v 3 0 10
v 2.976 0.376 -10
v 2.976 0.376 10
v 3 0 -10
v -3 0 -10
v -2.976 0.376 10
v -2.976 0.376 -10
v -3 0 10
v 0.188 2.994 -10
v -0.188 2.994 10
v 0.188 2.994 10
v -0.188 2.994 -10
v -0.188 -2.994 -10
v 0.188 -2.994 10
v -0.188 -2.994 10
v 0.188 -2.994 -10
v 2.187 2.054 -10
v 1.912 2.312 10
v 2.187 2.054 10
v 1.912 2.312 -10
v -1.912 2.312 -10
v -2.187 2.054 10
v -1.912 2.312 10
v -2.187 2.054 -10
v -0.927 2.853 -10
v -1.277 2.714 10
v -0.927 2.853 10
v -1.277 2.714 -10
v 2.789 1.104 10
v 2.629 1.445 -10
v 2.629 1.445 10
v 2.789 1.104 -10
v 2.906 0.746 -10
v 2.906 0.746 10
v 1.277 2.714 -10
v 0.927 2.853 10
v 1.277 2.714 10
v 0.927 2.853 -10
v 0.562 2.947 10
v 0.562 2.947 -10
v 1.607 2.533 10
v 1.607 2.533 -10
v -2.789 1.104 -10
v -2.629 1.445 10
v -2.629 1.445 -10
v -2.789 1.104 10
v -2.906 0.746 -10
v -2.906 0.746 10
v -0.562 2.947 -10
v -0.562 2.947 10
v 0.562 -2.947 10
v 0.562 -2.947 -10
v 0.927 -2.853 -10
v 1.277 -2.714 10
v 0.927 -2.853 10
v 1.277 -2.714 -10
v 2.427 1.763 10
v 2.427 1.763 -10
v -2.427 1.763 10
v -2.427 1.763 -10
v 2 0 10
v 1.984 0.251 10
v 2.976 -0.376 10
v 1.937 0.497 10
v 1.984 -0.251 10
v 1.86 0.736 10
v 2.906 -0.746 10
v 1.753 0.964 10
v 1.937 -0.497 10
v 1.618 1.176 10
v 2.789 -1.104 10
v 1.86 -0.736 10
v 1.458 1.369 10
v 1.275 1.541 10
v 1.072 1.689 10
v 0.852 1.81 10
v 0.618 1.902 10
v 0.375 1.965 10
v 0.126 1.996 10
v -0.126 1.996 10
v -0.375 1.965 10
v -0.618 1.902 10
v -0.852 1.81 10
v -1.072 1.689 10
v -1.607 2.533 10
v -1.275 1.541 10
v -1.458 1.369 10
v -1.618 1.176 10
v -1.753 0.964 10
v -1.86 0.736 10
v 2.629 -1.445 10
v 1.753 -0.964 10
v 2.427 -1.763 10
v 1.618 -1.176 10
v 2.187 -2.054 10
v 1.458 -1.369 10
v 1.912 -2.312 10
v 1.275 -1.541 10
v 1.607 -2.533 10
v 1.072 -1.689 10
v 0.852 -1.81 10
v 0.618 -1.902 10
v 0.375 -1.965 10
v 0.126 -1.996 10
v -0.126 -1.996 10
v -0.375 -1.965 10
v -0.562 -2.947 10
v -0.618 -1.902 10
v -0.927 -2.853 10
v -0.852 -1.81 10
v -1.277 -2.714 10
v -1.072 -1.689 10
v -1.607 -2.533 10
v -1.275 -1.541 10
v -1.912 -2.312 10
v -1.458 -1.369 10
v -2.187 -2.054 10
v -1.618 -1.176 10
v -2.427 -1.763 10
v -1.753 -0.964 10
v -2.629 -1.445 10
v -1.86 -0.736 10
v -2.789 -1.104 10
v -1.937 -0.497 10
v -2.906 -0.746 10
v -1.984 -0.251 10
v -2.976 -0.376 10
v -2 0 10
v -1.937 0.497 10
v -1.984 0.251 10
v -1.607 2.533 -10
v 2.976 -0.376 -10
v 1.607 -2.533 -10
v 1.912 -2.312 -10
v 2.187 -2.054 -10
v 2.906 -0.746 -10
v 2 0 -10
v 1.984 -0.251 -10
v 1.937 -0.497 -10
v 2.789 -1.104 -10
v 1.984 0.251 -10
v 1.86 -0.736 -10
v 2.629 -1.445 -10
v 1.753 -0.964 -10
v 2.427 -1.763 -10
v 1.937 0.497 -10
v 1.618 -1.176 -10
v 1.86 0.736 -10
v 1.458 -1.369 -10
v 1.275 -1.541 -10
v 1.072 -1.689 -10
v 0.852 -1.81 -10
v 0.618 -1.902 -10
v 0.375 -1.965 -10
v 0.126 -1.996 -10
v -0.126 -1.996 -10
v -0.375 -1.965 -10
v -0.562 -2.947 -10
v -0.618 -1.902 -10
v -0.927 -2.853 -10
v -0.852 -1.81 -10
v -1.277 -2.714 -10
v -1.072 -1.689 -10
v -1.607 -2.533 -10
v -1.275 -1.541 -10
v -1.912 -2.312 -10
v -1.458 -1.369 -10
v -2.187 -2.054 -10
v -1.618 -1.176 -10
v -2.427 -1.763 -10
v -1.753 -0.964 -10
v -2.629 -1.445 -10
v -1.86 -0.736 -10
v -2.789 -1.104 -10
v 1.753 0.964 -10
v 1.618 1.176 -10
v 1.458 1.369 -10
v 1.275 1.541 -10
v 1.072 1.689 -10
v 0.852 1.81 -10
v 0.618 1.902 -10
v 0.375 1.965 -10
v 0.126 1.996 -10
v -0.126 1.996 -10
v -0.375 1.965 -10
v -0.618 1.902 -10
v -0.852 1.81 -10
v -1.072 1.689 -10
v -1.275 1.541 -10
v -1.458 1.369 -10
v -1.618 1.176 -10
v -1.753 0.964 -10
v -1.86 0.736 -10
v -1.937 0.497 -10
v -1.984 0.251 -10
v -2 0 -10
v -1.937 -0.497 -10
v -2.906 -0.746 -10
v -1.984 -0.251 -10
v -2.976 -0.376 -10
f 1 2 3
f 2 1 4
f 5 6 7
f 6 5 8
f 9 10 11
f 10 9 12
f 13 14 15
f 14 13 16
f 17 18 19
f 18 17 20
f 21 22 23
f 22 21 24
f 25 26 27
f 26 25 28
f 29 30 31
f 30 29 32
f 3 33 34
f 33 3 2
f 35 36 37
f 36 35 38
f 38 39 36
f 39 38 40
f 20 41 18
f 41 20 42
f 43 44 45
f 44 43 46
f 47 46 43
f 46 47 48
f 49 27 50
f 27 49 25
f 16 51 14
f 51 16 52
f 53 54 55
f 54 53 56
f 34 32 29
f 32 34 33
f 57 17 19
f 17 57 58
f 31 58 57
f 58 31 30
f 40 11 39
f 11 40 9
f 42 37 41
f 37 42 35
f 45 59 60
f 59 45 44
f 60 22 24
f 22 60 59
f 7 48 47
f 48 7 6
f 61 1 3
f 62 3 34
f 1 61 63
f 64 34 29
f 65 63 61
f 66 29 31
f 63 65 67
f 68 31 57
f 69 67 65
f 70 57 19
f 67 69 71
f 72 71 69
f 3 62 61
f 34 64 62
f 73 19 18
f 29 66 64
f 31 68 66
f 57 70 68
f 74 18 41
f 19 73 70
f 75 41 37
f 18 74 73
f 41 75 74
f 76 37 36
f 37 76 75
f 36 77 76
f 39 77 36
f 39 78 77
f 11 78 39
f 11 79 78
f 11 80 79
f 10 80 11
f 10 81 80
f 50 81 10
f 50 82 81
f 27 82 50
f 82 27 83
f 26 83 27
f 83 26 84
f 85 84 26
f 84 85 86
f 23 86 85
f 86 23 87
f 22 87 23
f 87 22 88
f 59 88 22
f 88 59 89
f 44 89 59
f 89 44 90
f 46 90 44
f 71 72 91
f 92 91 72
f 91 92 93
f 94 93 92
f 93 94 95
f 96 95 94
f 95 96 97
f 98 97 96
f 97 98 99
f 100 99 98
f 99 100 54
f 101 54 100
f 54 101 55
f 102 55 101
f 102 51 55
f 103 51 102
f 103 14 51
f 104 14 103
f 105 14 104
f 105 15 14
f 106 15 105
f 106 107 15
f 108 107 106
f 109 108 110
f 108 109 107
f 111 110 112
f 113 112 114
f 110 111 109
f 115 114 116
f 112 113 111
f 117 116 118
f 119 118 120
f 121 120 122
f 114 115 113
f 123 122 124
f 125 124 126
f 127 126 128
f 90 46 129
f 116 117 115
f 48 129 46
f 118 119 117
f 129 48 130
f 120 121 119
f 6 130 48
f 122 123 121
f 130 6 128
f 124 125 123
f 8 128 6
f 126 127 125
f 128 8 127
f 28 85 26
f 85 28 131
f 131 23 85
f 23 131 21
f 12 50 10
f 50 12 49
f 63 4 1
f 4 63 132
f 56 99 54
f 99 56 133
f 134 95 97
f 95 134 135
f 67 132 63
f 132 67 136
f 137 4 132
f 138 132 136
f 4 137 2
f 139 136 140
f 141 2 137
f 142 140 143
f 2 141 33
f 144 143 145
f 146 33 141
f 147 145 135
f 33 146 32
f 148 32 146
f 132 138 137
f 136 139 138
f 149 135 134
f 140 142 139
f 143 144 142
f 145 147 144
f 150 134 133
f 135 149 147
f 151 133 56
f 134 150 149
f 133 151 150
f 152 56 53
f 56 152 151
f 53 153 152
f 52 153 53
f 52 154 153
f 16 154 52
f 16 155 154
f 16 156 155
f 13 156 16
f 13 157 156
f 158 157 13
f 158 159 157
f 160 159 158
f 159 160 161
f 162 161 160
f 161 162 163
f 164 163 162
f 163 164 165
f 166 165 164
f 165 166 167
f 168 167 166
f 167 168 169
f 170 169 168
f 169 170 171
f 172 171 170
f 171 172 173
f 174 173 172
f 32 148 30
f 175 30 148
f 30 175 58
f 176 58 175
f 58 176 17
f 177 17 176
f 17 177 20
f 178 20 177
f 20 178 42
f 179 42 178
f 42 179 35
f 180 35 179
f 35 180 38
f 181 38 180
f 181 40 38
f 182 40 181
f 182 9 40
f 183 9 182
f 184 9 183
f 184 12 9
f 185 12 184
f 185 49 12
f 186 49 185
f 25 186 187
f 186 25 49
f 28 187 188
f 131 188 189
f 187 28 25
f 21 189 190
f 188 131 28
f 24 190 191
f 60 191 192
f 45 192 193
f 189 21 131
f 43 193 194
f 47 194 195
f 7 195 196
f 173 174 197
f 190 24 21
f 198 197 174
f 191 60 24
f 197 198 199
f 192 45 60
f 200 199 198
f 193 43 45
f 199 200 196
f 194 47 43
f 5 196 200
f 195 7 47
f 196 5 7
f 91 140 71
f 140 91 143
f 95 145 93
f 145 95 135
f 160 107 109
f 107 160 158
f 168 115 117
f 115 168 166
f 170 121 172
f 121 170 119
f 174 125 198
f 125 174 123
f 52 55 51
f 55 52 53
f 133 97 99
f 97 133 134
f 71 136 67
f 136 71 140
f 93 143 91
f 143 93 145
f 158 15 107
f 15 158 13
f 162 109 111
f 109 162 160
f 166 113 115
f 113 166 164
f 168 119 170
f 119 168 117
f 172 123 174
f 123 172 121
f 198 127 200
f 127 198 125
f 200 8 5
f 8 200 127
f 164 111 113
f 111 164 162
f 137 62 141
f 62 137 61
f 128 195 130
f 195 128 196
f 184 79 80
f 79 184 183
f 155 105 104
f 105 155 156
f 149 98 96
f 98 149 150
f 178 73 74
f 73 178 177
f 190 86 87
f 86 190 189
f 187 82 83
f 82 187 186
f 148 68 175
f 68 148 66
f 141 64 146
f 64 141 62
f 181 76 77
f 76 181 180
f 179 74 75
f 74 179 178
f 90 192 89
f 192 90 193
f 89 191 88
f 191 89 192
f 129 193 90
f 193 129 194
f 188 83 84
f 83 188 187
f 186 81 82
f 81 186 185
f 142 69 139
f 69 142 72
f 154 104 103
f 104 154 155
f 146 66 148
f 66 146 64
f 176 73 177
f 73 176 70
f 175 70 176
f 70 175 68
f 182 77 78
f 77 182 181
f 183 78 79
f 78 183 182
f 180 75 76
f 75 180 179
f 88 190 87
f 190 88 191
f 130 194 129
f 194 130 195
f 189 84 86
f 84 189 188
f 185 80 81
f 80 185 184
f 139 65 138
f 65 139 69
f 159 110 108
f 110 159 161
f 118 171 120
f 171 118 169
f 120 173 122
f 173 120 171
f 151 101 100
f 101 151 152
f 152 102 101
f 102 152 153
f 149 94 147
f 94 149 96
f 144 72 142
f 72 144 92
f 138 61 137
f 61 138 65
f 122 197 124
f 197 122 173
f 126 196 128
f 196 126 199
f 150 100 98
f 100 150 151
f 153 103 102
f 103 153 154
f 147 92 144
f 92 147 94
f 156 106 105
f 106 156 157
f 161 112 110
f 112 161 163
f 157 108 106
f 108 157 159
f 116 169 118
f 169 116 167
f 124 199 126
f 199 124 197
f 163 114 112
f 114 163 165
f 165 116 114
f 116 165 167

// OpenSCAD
$fn = 50;


difference() {
	union() {
		translate(v = [0, 0, -10.0000000000]) {
			cylinder(h = 20, r = 3.0000000000);
		}
	}
	union() {
		translate(v = [0, 0, -100.0000000000]) {
			cylinder(h = 200, r = 2);
		}
	}
}
